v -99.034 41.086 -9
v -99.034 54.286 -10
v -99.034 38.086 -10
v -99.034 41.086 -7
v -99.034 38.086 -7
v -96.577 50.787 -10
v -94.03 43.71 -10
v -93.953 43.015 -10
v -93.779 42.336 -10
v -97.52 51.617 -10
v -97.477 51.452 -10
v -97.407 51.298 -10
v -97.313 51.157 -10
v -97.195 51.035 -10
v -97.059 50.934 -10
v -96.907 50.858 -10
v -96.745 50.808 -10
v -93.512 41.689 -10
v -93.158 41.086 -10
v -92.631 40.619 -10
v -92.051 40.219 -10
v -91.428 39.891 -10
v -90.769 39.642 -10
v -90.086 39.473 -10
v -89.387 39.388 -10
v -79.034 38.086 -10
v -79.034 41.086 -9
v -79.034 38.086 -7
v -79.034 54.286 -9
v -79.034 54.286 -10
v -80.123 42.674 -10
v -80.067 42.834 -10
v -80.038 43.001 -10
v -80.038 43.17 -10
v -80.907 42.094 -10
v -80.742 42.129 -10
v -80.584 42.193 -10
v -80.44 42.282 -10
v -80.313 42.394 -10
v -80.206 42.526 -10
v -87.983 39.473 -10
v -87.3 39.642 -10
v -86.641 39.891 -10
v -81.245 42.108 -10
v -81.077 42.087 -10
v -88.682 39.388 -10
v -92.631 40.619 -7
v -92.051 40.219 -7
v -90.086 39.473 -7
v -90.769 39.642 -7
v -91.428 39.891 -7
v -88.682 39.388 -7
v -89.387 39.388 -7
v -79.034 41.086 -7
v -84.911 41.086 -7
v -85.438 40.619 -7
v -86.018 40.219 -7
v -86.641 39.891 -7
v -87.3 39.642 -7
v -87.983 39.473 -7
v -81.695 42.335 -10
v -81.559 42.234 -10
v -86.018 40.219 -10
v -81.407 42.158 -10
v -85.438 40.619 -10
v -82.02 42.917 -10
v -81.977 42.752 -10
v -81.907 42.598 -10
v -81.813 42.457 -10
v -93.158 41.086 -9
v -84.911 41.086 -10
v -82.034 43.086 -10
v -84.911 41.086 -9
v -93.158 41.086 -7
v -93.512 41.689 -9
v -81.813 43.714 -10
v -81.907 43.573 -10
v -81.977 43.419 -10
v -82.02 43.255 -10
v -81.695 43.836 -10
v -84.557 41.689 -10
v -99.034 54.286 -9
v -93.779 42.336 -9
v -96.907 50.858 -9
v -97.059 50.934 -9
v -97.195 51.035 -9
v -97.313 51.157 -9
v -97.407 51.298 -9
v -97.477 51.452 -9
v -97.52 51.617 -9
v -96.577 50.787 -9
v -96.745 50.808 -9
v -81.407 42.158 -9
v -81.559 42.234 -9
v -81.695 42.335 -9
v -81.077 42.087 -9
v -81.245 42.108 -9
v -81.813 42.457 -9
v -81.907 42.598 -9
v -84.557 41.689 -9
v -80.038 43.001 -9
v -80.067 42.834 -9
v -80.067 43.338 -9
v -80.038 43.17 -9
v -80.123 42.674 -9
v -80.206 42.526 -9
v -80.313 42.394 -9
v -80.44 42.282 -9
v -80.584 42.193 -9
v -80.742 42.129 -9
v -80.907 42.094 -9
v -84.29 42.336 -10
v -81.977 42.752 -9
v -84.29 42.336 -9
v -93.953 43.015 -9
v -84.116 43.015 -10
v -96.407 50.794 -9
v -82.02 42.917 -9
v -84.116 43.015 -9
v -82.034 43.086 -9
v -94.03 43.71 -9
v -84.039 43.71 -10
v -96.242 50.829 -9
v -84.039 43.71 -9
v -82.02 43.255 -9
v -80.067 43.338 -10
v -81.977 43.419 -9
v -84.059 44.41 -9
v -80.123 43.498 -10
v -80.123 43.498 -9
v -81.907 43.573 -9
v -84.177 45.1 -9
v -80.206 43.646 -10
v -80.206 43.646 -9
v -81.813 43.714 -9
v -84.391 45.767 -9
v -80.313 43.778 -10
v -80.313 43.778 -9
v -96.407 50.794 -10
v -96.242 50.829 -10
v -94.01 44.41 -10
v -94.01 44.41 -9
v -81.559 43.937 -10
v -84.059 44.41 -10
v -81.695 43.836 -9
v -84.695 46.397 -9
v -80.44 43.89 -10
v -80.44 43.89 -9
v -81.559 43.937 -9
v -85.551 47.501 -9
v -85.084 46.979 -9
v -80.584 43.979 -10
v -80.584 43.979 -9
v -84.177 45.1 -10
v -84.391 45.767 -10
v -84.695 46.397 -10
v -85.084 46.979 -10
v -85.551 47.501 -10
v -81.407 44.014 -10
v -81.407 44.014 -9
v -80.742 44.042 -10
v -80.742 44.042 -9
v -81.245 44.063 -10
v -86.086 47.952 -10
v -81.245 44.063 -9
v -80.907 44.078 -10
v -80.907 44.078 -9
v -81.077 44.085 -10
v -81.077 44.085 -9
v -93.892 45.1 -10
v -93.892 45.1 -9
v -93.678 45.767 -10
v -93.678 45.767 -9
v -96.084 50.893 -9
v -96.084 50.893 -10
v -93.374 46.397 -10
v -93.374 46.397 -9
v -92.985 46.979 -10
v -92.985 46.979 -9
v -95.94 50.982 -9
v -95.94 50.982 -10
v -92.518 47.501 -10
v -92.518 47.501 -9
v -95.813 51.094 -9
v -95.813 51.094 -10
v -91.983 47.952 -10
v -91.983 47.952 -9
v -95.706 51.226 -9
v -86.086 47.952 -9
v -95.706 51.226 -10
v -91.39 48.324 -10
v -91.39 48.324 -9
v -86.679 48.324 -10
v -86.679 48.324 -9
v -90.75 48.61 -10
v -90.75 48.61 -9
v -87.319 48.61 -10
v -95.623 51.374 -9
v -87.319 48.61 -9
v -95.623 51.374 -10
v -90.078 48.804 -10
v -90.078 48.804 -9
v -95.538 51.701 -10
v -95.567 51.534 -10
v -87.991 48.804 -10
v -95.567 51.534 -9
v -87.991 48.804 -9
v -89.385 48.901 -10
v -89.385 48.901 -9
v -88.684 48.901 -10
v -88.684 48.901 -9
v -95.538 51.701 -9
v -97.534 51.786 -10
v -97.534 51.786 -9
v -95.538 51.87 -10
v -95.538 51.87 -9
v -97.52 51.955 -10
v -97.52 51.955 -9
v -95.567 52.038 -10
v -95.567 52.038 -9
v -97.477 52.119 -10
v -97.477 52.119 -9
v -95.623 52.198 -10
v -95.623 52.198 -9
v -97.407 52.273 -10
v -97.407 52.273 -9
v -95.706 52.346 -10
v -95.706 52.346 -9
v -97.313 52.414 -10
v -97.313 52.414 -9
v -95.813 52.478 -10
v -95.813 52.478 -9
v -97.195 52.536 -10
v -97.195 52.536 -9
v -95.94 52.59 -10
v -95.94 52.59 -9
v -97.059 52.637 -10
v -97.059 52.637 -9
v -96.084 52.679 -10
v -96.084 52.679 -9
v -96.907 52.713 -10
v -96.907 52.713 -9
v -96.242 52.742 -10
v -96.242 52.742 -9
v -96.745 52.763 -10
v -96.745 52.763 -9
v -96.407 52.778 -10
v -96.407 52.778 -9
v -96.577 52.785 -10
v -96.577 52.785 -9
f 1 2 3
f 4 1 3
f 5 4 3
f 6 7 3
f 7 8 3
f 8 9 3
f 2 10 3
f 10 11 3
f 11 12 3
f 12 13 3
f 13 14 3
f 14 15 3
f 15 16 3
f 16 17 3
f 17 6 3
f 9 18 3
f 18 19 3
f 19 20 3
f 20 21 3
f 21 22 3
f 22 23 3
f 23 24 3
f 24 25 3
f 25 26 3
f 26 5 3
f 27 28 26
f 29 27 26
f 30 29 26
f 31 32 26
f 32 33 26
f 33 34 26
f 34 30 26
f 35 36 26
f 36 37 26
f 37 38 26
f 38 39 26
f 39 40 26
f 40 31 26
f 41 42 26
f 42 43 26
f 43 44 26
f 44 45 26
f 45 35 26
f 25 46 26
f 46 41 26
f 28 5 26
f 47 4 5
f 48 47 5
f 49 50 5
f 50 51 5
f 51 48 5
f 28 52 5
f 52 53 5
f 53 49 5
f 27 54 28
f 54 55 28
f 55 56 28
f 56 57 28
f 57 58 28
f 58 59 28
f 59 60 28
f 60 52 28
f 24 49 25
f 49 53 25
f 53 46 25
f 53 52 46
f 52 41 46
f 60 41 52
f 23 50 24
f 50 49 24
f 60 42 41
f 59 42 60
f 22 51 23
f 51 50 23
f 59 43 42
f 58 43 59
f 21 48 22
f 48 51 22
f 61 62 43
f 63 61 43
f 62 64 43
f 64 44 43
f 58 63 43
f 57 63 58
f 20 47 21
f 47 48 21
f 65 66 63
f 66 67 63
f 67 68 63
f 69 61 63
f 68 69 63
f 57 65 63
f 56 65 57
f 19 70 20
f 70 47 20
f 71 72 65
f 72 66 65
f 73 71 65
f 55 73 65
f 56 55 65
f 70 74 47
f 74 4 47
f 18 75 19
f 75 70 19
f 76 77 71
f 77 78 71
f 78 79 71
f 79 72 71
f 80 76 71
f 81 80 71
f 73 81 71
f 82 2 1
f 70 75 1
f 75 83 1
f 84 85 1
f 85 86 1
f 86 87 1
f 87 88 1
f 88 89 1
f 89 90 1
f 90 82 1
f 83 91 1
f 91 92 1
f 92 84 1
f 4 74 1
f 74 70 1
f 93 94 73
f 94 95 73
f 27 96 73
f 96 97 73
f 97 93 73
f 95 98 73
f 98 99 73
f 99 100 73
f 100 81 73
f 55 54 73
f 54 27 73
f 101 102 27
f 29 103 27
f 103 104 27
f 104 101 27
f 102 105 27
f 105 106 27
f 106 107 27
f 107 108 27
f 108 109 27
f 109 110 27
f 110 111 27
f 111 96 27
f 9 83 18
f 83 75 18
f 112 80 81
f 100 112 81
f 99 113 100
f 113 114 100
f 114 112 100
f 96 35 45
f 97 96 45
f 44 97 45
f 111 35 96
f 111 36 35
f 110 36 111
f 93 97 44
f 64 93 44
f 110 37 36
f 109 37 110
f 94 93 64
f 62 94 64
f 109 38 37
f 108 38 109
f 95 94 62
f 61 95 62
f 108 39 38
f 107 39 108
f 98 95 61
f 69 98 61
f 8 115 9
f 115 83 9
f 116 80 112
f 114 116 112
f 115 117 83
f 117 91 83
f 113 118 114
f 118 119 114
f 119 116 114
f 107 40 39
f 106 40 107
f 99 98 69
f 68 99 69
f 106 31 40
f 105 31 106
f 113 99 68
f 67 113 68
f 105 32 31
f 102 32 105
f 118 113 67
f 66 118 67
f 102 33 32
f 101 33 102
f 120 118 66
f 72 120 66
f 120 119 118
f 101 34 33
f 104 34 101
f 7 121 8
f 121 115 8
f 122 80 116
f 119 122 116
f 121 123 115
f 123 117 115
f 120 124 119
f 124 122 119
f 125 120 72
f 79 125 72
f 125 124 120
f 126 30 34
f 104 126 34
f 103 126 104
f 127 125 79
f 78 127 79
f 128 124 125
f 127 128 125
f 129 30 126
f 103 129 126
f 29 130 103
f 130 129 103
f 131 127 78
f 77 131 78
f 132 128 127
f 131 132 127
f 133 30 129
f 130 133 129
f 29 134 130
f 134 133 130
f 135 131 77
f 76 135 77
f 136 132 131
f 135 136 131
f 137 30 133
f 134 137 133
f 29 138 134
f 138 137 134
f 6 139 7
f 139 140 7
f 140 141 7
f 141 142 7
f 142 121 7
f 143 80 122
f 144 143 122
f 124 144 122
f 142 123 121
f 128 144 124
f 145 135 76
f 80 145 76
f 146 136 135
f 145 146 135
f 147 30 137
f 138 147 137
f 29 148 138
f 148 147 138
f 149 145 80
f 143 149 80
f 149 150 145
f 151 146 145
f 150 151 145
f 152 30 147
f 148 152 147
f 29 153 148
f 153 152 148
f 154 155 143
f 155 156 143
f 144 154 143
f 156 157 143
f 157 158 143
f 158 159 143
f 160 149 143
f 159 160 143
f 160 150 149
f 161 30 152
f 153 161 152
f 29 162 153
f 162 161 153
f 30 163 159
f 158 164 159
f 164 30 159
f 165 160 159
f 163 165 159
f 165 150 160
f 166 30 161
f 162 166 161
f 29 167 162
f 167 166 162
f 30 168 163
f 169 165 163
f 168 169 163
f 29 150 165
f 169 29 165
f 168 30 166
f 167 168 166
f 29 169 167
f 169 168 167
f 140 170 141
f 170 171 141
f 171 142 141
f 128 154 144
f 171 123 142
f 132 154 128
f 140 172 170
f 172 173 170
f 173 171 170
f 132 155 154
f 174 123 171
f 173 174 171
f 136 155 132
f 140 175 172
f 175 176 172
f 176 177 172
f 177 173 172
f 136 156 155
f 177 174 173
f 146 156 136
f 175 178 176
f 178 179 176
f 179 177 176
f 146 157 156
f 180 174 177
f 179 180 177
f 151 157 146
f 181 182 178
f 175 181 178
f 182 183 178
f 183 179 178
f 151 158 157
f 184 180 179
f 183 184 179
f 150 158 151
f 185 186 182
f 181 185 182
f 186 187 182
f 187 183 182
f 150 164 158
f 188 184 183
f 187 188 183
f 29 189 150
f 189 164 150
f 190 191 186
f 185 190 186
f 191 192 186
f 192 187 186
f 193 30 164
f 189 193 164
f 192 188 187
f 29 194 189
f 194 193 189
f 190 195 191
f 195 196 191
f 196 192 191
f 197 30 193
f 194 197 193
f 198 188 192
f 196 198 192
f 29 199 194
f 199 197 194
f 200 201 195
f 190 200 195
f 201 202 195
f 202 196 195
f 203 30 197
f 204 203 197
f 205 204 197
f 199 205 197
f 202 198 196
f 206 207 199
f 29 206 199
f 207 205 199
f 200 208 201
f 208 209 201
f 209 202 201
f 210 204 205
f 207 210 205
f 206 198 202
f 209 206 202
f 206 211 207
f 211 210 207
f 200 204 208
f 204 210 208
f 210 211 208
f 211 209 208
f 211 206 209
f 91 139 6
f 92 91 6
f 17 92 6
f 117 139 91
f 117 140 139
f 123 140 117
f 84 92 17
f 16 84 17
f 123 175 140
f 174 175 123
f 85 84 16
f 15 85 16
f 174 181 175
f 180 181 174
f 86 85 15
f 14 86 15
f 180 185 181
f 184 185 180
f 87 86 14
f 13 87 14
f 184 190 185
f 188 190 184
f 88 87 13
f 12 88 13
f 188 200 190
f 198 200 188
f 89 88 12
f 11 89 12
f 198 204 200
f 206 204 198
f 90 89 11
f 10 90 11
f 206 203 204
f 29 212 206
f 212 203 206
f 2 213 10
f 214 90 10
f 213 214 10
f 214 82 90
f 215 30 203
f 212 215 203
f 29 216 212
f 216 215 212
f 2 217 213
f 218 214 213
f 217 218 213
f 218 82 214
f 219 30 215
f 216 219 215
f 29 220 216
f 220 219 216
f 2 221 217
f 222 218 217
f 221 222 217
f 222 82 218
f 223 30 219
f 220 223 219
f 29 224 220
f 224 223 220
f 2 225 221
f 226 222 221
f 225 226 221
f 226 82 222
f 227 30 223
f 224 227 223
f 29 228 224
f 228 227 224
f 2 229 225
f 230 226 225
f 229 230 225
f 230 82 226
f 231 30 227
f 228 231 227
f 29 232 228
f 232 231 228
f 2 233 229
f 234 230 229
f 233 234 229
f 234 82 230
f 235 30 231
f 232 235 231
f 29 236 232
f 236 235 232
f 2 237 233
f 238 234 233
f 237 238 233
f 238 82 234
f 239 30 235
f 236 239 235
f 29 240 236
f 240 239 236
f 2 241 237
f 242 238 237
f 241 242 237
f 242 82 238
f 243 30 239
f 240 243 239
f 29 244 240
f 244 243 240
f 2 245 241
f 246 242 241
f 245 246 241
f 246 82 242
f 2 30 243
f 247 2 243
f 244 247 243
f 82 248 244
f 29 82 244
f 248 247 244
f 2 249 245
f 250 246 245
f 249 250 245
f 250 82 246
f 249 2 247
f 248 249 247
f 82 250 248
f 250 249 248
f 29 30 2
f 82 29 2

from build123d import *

# Parameters (mm, degrees)
CROQUIS1_R              = 1.628014373
SALIENTE_EXTRUIR1_DEPTH = 4
SALIENTE_EXTRUIR2_DEPTH = 9
CROQUIS3_R              = 1.5
CORTAR_EXTRUIR1_DEPTH   = 4
SALIENTE_EXTRUIR3_DEPTH = 7
CORTAR_EXTRUIR2_DEPTH   = 4.8
CROQUIS10_R             = 1
CORTAR_EXTRUIR3_DEPTH   = 4
SALIENTE_EXTRUIR4_START = 1
CROQUIS11_R             = 1
CROQUIS11_W             = 5.6
CROQUIS11_H             = 2.5
SALIENTE_EXTRUIR4_DEPTH = 1
CROQUIS12_W             = 27.503266124
CROQUIS12_H             = 20
CORTAR_EXTRUIR4_DEPTH   = 13
CROQUIS13_W             = 5.6
CROQUIS13_H             = 2.5
SALIENTE_EXTRUIR5_DEPTH = 1
SALIENTE_EXTRUIR6_DEPTH = 3
CROQUIS15_W             = 3
CROQUIS15_H             = 7
CORTAR_EXTRUIR5_DEPTH   = 3


with BuildPart() as part:
    # Croquis1 → Saliente-Extruir1 (new body)
    with BuildSketch(Plane.XY):
        with BuildLine():
            Line((-79.034482165, 42.285614206), (-79.034482165, 34.285614206))
            Line((-79.034482165, 34.285614206), (-85.534482165, 34.285614206))
            Line((-85.534482165, 34.285614206), (-85.534482165, 43.91362858))
            ThreePointArc((-85.534482165, 43.91362858), (-89.034482165, 47.41362858), (-92.534482165, 43.91362858))
            Line((-92.534482165, 43.91362858), (-92.534482165, 34.285614206))
            Line((-92.534482165, 34.285614206), (-99.034482165, 34.285614206))
            Line((-99.034482165, 34.285614206), (-99.034482165, 42.285614206))
            Line((-99.034482165, 42.285614206), (-99.034482165, 54.285614206))
            Line((-99.034482165, 54.285614206), (-79.034482165, 54.285614206))
            Line((-79.034482165, 54.285614206), (-79.034482165, 42.285614206))
        make_face()
        with Locations((-96.034482165, 38.285614206)):
            Circle(CROQUIS1_R, mode=Mode.SUBTRACT)
        with Locations((-82.034482165, 38.285614206)):
            Circle(CROQUIS1_R, mode=Mode.SUBTRACT)
    extrude(amount=SALIENTE_EXTRUIR1_DEPTH)

    # Croquis2 → Saliente-Extruir2 (add)
    with BuildSketch(Plane(origin=(0, 0, 0), x_dir=(-1, 0, 0), z_dir=(0, 0, -1))):
        with BuildLine():
            Line((79.034482165, 41.085614206), (83.629638531, 41.085614206))
            ThreePointArc((83.629638531, 41.085614206), (89.034482165, 50.01362858), (94.439325799, 41.085614206))
            Line((94.439325799, 41.085614206), (99.034482165, 41.085614206))
            Line((99.034482165, 41.085614206), (99.034482165, 54.285614206))
            Line((99.034482165, 54.285614206), (79.034482165, 54.285614206))
            Line((79.034482165, 54.285614206), (79.034482165, 41.085614206))
        make_face()
    extrude(amount=SALIENTE_EXTRUIR2_DEPTH)

    # Croquis3 → Cortar-Extruir1 (cut)
    with BuildSketch(Plane(origin=(0, 54.285614206, 0), x_dir=(1, 0, 0), z_dir=(0, 1, 0))):
        with Locations(Location((-90.034482165, 7, 0), (0, 0, 270))):
            Circle(CROQUIS3_R)
        with BuildLine():
            Line((-79.034482165, 8.118033989), (-79.034482165, 5.881966011))
            ThreePointArc((-79.034482165, 5.881966011), (-81.534482165, 7), (-79.034482165, 8.118033989))
        make_face()
    extrude(amount=-CORTAR_EXTRUIR1_DEPTH, mode=Mode.SUBTRACT)

    # Croquis4 → Saliente-Extruir3 (add)
    with BuildSketch(Plane(origin=(0, 54.285614206, 0), x_dir=(1, 0, 0), z_dir=(0, 1, 0))):
        with BuildLine():
            Line((-76.034482165, 1), (-76.034482165, 9))
            Line((-76.034482165, 9), (-79.034482165, 9))
            Line((-79.034482165, 9), (-79.034482165, 8.118033989))
            ThreePointArc((-79.034482165, 8.118033989), (-78.534482165, 7), (-79.034482165, 5.881966011))
            Line((-79.034482165, 5.881966011), (-79.034482165, -4))
            Line((-79.034482165, -4), (-76.034482165, 1))
        make_face()
    extrude(amount=-SALIENTE_EXTRUIR3_DEPTH)

    # Croquis5 → Cortar-Extruir2 (cut)
    with BuildSketch(Plane(origin=(0, 0, -9), x_dir=(-1, 0, 0), z_dir=(0, 0, -1))):
        Polygon((90.034482165, 50.285614206), (92.834482165, 50.285614206), (92.834482165, 52.785614206), (87.234482165, 52.785614206), (87.234482165, 50.285614206), align=None)
        Polygon((80.034482165, 50.285614206), (82.834482165, 50.285614206), (82.834482165, 52.785614206), (77.234482165, 52.785614206), (77.234482165, 50.285614206), align=None)
    extrude(amount=-CORTAR_EXTRUIR2_DEPTH, mode=Mode.SUBTRACT)

    # Croquis10 → Cortar-Extruir3 (cut)
    with BuildSketch(Plane(origin=(0, 0, -9), x_dir=(-1, 0, 0), z_dir=(0, 0, -1))):
        with Locations((96.534482165, 51.785614206)):
            Circle(CROQUIS10_R)
        with Locations((81.034482165, 43.085614206)):
            Circle(CROQUIS10_R)
    extrude(amount=-CORTAR_EXTRUIR3_DEPTH, mode=Mode.SUBTRACT)

    # Croquis11 → Saliente-Extruir4 (add)
    with BuildSketch(Plane(origin=(0, 0, -9), x_dir=(-1, 0, 0), z_dir=(0, 0, -1)).offset(SALIENTE_EXTRUIR4_START)):
        with BuildLine():
            Line((94.439325799, 41.085614206), (99.034482165, 41.085614206))
            Line((99.034482165, 41.085614206), (99.034482165, 54.285614206))
            Line((99.034482165, 54.285614206), (76.034482165, 54.285614206))
            Line((76.034482165, 54.285614206), (76.034482165, 47.285614206))
            Line((76.034482165, 47.285614206), (79.034482165, 47.285614206))
            Line((79.034482165, 47.285614206), (79.034482165, 41.085614206))
            Line((79.034482165, 41.085614206), (83.629638531, 41.085614206))
            Line((83.629638531, 41.085614206), (84.911093424, 41.085614206))
            ThreePointArc((84.911093424, 41.085614206), (89.034482165, 48.91362858), (93.157870905, 41.085614206))
            Line((93.157870905, 41.085614206), (94.439325799, 41.085614206))
        make_face()
        with Locations((96.534482165, 51.785614206)):
            Circle(CROQUIS11_R, mode=Mode.SUBTRACT)
        with Locations((81.034482165, 43.085614206)):
            Circle(CROQUIS11_R, mode=Mode.SUBTRACT)
        with Locations((90.034482165, 51.535614206)):
            Rectangle(CROQUIS11_W, CROQUIS11_H, mode=Mode.SUBTRACT)
        with Locations((80.034482165, 51.535614206)):
            Rectangle(CROQUIS11_W, CROQUIS11_H, mode=Mode.SUBTRACT)
    extrude(amount=-SALIENTE_EXTRUIR4_DEPTH)

    # Croquis12 → Cortar-Extruir4 (cut)
    with BuildSketch(Plane.XY.offset(4)):
        with Locations((-85.282849103, 44.285614206)):
            Rectangle(CROQUIS12_W, CROQUIS12_H)
    extrude(amount=-CORTAR_EXTRUIR4_DEPTH, mode=Mode.SUBTRACT)

    # Croquis13 → Saliente-Extruir5 (add)
    with BuildSketch(Plane(origin=(0, 0, -10), x_dir=(-1, 0, 0), z_dir=(0, 0, -1))):
        with Locations((90.034482165, 51.535614206)):
            Rectangle(CROQUIS13_W, CROQUIS13_H)
        with Locations((80.034482165, 51.535614206)):
            Rectangle(CROQUIS13_W, CROQUIS13_H)
    extrude(amount=-SALIENTE_EXTRUIR5_DEPTH)

    # Croquis14 → Saliente-Extruir6 (add)
    with BuildSketch(Plane(origin=(0, 0, -10), x_dir=(-1, 0, 0), z_dir=(0, 0, -1))):
        with BuildLine():
            Line((99.034482165, 41.085614206), (99.034482165, 38.085614206))
            Line((99.034482165, 38.085614206), (79.034482165, 38.085614206))
            Line((79.034482165, 38.085614206), (79.034482165, 41.085614206))
            Line((79.034482165, 41.085614206), (84.911093424, 41.085614206))
            ThreePointArc((84.911093424, 41.085614206), (89.034482165, 39.377650667), (93.157870905, 41.085614206))
            Line((93.157870905, 41.085614206), (99.034482165, 41.085614206))
        make_face()
    extrude(amount=-SALIENTE_EXTRUIR6_DEPTH)

    # Croquis15 → Cortar-Extruir5 (cut)
    with BuildSketch(Plane(origin=(0, 0, -10), x_dir=(-1, 0, 0), z_dir=(0, 0, -1))):
        with Locations((77.534482165, 50.785614206)):
            Rectangle(CROQUIS15_W, CROQUIS15_H)
    extrude(amount=-CORTAR_EXTRUIR5_DEPTH, mode=Mode.SUBTRACT)


solid = part.part
